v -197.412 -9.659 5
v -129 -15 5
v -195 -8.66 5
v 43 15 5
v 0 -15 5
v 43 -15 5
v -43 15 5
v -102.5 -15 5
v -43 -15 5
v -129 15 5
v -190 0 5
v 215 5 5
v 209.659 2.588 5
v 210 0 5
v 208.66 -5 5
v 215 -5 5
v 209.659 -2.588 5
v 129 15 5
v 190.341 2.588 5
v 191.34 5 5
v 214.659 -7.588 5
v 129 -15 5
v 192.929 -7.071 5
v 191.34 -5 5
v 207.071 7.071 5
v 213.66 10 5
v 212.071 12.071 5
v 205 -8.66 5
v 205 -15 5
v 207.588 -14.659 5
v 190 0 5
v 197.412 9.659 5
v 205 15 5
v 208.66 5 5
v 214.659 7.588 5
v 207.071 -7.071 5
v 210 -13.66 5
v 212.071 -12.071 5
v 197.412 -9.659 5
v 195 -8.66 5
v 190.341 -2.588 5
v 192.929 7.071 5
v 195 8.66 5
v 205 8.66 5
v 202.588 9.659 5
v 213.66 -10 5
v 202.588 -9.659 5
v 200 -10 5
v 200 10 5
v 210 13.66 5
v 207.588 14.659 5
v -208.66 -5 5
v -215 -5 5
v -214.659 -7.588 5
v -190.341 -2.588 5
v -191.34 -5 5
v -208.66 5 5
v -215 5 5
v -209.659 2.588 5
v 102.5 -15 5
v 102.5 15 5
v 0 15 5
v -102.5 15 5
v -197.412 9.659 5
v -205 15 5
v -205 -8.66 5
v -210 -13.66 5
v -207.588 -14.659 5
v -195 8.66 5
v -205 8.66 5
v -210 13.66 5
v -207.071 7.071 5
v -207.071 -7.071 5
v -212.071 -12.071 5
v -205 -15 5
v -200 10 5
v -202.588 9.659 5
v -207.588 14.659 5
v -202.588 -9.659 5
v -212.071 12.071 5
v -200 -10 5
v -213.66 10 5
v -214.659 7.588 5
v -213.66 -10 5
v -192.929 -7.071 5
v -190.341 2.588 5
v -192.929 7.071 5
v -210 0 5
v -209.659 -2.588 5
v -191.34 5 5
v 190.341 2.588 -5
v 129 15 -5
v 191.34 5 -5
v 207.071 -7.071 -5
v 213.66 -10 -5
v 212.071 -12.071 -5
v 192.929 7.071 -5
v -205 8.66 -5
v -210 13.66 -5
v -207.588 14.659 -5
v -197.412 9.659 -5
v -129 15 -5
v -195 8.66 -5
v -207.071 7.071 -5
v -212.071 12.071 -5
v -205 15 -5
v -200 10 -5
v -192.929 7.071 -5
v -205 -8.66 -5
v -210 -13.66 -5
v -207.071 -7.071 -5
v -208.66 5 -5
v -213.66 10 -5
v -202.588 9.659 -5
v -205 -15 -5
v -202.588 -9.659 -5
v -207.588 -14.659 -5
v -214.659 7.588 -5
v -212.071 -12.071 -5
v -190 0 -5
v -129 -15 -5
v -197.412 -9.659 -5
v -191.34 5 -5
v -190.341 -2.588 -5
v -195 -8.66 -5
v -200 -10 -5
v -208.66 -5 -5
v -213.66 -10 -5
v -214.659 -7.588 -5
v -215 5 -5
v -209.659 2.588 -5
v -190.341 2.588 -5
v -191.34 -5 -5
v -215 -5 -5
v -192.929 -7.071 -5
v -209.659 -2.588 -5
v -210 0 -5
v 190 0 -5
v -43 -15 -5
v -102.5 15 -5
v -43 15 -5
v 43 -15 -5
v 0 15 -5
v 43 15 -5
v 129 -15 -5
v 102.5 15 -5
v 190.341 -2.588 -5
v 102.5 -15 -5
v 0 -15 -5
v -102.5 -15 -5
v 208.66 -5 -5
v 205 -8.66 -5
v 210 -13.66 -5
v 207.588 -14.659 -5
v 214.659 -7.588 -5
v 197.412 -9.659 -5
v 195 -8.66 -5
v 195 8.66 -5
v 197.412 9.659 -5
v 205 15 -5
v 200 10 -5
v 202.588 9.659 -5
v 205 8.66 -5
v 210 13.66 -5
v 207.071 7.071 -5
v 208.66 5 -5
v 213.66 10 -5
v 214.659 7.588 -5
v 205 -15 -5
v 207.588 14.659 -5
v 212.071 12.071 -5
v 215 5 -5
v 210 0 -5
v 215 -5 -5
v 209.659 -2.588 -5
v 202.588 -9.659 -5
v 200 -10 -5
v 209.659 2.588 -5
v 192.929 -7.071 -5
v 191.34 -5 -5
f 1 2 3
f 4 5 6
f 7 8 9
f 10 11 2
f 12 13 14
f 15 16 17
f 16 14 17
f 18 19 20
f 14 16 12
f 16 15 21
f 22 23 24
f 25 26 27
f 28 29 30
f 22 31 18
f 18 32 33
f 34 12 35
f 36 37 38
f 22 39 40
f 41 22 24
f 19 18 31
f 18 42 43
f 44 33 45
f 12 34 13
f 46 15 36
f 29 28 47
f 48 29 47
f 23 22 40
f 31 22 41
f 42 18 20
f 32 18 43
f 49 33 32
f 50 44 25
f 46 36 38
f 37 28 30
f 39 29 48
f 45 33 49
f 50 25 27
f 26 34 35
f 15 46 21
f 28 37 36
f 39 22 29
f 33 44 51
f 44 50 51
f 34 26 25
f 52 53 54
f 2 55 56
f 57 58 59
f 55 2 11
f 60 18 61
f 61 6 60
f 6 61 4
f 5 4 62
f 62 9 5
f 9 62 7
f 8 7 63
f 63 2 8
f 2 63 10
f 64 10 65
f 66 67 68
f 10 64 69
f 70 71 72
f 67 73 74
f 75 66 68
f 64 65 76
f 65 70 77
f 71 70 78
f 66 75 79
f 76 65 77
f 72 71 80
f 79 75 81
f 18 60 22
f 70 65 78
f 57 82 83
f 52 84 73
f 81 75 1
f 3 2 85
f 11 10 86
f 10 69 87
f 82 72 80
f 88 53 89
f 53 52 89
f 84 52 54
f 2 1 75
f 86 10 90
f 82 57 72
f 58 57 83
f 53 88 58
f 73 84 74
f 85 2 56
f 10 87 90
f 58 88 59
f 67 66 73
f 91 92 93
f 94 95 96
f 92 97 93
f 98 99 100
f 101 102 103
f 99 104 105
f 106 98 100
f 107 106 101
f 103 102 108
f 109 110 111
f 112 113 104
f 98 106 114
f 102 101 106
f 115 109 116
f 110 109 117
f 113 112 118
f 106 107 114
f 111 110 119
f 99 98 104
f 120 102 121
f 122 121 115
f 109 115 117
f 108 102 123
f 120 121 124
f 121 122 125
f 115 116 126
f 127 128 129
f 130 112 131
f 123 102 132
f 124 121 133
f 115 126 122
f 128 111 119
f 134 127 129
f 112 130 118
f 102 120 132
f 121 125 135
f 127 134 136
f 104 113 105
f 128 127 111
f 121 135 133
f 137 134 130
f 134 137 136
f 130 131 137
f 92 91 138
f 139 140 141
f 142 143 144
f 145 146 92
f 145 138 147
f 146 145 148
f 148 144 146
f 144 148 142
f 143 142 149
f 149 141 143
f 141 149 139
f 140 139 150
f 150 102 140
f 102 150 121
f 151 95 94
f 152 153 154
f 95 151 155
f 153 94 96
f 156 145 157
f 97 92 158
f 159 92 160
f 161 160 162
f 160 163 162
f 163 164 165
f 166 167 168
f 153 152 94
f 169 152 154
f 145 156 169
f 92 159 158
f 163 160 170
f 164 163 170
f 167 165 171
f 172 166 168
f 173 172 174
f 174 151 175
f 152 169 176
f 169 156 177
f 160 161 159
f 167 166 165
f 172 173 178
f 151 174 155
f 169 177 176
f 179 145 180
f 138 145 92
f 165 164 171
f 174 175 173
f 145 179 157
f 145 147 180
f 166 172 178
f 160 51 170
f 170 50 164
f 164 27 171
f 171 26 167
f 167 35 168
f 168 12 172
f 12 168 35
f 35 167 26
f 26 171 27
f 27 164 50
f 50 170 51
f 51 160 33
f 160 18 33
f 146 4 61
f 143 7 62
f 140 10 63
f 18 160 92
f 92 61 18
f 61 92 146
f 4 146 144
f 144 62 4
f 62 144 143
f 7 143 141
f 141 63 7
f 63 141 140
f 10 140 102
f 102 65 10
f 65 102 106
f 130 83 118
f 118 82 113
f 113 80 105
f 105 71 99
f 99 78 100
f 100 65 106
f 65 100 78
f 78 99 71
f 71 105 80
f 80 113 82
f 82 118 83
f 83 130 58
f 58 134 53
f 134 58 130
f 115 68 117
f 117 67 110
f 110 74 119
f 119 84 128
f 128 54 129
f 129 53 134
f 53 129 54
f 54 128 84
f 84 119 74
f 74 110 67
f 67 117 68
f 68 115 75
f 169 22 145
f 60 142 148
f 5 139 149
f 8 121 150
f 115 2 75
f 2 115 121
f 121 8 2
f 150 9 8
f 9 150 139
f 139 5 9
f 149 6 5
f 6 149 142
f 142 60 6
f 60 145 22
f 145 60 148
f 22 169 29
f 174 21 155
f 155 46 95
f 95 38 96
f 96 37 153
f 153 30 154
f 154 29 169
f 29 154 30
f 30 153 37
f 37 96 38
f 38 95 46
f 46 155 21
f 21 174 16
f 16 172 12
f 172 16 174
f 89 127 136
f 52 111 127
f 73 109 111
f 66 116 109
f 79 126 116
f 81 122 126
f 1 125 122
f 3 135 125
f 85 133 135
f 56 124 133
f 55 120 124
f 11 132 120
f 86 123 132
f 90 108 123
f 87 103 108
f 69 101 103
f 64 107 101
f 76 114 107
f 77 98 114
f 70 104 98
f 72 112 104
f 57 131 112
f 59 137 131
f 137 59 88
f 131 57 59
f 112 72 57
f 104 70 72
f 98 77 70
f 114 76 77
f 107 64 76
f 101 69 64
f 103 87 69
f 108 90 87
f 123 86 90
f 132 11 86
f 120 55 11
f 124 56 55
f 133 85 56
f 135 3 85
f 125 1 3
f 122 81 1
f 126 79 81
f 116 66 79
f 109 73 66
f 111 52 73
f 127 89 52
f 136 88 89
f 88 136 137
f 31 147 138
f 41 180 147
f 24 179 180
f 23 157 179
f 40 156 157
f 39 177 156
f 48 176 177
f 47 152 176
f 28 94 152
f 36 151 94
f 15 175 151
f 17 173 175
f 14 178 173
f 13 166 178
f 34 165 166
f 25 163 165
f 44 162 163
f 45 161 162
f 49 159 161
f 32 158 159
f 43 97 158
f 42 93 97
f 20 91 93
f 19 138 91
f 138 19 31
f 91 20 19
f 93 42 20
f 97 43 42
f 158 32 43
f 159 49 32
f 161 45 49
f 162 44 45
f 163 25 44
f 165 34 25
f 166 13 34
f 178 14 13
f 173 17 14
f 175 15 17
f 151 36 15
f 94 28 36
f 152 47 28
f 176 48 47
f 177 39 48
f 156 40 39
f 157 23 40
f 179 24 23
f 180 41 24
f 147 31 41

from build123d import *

# Parameters (mm, degrees)
CROQUIS1_R              = 10
SALIENTE_EXTRUIR2_DEPTH = 5


with BuildPart() as part:
    # Croquis1 → Saliente-Extruir2 (new body, symmetric)
    with BuildSketch(Plane.XY):
        with BuildLine():
            Line((-205, 15), (205, 15))
            ThreePointArc((205, 15), (212.071067812, 12.071067812), (215, 5))
            Line((215, 5), (215, -5))
            ThreePointArc((215, -5), (212.071067812, -12.071067812), (205, -15))
            Line((205, -15), (-205, -15))
            ThreePointArc((-205, -15), (-212.071067812, -12.071067812), (-215, -5))
            Line((-215, -5), (-215, 5))
            ThreePointArc((-215, 5), (-212.071067812, 12.071067812), (-205, 15))
        make_face()
        with Locations((-200, 0)):
            Circle(CROQUIS1_R, mode=Mode.SUBTRACT)
        with Locations((200, 0)):
            Circle(CROQUIS1_R, mode=Mode.SUBTRACT)
    extrude(amount=SALIENTE_EXTRUIR2_DEPTH, both=True)


solid = part.part
